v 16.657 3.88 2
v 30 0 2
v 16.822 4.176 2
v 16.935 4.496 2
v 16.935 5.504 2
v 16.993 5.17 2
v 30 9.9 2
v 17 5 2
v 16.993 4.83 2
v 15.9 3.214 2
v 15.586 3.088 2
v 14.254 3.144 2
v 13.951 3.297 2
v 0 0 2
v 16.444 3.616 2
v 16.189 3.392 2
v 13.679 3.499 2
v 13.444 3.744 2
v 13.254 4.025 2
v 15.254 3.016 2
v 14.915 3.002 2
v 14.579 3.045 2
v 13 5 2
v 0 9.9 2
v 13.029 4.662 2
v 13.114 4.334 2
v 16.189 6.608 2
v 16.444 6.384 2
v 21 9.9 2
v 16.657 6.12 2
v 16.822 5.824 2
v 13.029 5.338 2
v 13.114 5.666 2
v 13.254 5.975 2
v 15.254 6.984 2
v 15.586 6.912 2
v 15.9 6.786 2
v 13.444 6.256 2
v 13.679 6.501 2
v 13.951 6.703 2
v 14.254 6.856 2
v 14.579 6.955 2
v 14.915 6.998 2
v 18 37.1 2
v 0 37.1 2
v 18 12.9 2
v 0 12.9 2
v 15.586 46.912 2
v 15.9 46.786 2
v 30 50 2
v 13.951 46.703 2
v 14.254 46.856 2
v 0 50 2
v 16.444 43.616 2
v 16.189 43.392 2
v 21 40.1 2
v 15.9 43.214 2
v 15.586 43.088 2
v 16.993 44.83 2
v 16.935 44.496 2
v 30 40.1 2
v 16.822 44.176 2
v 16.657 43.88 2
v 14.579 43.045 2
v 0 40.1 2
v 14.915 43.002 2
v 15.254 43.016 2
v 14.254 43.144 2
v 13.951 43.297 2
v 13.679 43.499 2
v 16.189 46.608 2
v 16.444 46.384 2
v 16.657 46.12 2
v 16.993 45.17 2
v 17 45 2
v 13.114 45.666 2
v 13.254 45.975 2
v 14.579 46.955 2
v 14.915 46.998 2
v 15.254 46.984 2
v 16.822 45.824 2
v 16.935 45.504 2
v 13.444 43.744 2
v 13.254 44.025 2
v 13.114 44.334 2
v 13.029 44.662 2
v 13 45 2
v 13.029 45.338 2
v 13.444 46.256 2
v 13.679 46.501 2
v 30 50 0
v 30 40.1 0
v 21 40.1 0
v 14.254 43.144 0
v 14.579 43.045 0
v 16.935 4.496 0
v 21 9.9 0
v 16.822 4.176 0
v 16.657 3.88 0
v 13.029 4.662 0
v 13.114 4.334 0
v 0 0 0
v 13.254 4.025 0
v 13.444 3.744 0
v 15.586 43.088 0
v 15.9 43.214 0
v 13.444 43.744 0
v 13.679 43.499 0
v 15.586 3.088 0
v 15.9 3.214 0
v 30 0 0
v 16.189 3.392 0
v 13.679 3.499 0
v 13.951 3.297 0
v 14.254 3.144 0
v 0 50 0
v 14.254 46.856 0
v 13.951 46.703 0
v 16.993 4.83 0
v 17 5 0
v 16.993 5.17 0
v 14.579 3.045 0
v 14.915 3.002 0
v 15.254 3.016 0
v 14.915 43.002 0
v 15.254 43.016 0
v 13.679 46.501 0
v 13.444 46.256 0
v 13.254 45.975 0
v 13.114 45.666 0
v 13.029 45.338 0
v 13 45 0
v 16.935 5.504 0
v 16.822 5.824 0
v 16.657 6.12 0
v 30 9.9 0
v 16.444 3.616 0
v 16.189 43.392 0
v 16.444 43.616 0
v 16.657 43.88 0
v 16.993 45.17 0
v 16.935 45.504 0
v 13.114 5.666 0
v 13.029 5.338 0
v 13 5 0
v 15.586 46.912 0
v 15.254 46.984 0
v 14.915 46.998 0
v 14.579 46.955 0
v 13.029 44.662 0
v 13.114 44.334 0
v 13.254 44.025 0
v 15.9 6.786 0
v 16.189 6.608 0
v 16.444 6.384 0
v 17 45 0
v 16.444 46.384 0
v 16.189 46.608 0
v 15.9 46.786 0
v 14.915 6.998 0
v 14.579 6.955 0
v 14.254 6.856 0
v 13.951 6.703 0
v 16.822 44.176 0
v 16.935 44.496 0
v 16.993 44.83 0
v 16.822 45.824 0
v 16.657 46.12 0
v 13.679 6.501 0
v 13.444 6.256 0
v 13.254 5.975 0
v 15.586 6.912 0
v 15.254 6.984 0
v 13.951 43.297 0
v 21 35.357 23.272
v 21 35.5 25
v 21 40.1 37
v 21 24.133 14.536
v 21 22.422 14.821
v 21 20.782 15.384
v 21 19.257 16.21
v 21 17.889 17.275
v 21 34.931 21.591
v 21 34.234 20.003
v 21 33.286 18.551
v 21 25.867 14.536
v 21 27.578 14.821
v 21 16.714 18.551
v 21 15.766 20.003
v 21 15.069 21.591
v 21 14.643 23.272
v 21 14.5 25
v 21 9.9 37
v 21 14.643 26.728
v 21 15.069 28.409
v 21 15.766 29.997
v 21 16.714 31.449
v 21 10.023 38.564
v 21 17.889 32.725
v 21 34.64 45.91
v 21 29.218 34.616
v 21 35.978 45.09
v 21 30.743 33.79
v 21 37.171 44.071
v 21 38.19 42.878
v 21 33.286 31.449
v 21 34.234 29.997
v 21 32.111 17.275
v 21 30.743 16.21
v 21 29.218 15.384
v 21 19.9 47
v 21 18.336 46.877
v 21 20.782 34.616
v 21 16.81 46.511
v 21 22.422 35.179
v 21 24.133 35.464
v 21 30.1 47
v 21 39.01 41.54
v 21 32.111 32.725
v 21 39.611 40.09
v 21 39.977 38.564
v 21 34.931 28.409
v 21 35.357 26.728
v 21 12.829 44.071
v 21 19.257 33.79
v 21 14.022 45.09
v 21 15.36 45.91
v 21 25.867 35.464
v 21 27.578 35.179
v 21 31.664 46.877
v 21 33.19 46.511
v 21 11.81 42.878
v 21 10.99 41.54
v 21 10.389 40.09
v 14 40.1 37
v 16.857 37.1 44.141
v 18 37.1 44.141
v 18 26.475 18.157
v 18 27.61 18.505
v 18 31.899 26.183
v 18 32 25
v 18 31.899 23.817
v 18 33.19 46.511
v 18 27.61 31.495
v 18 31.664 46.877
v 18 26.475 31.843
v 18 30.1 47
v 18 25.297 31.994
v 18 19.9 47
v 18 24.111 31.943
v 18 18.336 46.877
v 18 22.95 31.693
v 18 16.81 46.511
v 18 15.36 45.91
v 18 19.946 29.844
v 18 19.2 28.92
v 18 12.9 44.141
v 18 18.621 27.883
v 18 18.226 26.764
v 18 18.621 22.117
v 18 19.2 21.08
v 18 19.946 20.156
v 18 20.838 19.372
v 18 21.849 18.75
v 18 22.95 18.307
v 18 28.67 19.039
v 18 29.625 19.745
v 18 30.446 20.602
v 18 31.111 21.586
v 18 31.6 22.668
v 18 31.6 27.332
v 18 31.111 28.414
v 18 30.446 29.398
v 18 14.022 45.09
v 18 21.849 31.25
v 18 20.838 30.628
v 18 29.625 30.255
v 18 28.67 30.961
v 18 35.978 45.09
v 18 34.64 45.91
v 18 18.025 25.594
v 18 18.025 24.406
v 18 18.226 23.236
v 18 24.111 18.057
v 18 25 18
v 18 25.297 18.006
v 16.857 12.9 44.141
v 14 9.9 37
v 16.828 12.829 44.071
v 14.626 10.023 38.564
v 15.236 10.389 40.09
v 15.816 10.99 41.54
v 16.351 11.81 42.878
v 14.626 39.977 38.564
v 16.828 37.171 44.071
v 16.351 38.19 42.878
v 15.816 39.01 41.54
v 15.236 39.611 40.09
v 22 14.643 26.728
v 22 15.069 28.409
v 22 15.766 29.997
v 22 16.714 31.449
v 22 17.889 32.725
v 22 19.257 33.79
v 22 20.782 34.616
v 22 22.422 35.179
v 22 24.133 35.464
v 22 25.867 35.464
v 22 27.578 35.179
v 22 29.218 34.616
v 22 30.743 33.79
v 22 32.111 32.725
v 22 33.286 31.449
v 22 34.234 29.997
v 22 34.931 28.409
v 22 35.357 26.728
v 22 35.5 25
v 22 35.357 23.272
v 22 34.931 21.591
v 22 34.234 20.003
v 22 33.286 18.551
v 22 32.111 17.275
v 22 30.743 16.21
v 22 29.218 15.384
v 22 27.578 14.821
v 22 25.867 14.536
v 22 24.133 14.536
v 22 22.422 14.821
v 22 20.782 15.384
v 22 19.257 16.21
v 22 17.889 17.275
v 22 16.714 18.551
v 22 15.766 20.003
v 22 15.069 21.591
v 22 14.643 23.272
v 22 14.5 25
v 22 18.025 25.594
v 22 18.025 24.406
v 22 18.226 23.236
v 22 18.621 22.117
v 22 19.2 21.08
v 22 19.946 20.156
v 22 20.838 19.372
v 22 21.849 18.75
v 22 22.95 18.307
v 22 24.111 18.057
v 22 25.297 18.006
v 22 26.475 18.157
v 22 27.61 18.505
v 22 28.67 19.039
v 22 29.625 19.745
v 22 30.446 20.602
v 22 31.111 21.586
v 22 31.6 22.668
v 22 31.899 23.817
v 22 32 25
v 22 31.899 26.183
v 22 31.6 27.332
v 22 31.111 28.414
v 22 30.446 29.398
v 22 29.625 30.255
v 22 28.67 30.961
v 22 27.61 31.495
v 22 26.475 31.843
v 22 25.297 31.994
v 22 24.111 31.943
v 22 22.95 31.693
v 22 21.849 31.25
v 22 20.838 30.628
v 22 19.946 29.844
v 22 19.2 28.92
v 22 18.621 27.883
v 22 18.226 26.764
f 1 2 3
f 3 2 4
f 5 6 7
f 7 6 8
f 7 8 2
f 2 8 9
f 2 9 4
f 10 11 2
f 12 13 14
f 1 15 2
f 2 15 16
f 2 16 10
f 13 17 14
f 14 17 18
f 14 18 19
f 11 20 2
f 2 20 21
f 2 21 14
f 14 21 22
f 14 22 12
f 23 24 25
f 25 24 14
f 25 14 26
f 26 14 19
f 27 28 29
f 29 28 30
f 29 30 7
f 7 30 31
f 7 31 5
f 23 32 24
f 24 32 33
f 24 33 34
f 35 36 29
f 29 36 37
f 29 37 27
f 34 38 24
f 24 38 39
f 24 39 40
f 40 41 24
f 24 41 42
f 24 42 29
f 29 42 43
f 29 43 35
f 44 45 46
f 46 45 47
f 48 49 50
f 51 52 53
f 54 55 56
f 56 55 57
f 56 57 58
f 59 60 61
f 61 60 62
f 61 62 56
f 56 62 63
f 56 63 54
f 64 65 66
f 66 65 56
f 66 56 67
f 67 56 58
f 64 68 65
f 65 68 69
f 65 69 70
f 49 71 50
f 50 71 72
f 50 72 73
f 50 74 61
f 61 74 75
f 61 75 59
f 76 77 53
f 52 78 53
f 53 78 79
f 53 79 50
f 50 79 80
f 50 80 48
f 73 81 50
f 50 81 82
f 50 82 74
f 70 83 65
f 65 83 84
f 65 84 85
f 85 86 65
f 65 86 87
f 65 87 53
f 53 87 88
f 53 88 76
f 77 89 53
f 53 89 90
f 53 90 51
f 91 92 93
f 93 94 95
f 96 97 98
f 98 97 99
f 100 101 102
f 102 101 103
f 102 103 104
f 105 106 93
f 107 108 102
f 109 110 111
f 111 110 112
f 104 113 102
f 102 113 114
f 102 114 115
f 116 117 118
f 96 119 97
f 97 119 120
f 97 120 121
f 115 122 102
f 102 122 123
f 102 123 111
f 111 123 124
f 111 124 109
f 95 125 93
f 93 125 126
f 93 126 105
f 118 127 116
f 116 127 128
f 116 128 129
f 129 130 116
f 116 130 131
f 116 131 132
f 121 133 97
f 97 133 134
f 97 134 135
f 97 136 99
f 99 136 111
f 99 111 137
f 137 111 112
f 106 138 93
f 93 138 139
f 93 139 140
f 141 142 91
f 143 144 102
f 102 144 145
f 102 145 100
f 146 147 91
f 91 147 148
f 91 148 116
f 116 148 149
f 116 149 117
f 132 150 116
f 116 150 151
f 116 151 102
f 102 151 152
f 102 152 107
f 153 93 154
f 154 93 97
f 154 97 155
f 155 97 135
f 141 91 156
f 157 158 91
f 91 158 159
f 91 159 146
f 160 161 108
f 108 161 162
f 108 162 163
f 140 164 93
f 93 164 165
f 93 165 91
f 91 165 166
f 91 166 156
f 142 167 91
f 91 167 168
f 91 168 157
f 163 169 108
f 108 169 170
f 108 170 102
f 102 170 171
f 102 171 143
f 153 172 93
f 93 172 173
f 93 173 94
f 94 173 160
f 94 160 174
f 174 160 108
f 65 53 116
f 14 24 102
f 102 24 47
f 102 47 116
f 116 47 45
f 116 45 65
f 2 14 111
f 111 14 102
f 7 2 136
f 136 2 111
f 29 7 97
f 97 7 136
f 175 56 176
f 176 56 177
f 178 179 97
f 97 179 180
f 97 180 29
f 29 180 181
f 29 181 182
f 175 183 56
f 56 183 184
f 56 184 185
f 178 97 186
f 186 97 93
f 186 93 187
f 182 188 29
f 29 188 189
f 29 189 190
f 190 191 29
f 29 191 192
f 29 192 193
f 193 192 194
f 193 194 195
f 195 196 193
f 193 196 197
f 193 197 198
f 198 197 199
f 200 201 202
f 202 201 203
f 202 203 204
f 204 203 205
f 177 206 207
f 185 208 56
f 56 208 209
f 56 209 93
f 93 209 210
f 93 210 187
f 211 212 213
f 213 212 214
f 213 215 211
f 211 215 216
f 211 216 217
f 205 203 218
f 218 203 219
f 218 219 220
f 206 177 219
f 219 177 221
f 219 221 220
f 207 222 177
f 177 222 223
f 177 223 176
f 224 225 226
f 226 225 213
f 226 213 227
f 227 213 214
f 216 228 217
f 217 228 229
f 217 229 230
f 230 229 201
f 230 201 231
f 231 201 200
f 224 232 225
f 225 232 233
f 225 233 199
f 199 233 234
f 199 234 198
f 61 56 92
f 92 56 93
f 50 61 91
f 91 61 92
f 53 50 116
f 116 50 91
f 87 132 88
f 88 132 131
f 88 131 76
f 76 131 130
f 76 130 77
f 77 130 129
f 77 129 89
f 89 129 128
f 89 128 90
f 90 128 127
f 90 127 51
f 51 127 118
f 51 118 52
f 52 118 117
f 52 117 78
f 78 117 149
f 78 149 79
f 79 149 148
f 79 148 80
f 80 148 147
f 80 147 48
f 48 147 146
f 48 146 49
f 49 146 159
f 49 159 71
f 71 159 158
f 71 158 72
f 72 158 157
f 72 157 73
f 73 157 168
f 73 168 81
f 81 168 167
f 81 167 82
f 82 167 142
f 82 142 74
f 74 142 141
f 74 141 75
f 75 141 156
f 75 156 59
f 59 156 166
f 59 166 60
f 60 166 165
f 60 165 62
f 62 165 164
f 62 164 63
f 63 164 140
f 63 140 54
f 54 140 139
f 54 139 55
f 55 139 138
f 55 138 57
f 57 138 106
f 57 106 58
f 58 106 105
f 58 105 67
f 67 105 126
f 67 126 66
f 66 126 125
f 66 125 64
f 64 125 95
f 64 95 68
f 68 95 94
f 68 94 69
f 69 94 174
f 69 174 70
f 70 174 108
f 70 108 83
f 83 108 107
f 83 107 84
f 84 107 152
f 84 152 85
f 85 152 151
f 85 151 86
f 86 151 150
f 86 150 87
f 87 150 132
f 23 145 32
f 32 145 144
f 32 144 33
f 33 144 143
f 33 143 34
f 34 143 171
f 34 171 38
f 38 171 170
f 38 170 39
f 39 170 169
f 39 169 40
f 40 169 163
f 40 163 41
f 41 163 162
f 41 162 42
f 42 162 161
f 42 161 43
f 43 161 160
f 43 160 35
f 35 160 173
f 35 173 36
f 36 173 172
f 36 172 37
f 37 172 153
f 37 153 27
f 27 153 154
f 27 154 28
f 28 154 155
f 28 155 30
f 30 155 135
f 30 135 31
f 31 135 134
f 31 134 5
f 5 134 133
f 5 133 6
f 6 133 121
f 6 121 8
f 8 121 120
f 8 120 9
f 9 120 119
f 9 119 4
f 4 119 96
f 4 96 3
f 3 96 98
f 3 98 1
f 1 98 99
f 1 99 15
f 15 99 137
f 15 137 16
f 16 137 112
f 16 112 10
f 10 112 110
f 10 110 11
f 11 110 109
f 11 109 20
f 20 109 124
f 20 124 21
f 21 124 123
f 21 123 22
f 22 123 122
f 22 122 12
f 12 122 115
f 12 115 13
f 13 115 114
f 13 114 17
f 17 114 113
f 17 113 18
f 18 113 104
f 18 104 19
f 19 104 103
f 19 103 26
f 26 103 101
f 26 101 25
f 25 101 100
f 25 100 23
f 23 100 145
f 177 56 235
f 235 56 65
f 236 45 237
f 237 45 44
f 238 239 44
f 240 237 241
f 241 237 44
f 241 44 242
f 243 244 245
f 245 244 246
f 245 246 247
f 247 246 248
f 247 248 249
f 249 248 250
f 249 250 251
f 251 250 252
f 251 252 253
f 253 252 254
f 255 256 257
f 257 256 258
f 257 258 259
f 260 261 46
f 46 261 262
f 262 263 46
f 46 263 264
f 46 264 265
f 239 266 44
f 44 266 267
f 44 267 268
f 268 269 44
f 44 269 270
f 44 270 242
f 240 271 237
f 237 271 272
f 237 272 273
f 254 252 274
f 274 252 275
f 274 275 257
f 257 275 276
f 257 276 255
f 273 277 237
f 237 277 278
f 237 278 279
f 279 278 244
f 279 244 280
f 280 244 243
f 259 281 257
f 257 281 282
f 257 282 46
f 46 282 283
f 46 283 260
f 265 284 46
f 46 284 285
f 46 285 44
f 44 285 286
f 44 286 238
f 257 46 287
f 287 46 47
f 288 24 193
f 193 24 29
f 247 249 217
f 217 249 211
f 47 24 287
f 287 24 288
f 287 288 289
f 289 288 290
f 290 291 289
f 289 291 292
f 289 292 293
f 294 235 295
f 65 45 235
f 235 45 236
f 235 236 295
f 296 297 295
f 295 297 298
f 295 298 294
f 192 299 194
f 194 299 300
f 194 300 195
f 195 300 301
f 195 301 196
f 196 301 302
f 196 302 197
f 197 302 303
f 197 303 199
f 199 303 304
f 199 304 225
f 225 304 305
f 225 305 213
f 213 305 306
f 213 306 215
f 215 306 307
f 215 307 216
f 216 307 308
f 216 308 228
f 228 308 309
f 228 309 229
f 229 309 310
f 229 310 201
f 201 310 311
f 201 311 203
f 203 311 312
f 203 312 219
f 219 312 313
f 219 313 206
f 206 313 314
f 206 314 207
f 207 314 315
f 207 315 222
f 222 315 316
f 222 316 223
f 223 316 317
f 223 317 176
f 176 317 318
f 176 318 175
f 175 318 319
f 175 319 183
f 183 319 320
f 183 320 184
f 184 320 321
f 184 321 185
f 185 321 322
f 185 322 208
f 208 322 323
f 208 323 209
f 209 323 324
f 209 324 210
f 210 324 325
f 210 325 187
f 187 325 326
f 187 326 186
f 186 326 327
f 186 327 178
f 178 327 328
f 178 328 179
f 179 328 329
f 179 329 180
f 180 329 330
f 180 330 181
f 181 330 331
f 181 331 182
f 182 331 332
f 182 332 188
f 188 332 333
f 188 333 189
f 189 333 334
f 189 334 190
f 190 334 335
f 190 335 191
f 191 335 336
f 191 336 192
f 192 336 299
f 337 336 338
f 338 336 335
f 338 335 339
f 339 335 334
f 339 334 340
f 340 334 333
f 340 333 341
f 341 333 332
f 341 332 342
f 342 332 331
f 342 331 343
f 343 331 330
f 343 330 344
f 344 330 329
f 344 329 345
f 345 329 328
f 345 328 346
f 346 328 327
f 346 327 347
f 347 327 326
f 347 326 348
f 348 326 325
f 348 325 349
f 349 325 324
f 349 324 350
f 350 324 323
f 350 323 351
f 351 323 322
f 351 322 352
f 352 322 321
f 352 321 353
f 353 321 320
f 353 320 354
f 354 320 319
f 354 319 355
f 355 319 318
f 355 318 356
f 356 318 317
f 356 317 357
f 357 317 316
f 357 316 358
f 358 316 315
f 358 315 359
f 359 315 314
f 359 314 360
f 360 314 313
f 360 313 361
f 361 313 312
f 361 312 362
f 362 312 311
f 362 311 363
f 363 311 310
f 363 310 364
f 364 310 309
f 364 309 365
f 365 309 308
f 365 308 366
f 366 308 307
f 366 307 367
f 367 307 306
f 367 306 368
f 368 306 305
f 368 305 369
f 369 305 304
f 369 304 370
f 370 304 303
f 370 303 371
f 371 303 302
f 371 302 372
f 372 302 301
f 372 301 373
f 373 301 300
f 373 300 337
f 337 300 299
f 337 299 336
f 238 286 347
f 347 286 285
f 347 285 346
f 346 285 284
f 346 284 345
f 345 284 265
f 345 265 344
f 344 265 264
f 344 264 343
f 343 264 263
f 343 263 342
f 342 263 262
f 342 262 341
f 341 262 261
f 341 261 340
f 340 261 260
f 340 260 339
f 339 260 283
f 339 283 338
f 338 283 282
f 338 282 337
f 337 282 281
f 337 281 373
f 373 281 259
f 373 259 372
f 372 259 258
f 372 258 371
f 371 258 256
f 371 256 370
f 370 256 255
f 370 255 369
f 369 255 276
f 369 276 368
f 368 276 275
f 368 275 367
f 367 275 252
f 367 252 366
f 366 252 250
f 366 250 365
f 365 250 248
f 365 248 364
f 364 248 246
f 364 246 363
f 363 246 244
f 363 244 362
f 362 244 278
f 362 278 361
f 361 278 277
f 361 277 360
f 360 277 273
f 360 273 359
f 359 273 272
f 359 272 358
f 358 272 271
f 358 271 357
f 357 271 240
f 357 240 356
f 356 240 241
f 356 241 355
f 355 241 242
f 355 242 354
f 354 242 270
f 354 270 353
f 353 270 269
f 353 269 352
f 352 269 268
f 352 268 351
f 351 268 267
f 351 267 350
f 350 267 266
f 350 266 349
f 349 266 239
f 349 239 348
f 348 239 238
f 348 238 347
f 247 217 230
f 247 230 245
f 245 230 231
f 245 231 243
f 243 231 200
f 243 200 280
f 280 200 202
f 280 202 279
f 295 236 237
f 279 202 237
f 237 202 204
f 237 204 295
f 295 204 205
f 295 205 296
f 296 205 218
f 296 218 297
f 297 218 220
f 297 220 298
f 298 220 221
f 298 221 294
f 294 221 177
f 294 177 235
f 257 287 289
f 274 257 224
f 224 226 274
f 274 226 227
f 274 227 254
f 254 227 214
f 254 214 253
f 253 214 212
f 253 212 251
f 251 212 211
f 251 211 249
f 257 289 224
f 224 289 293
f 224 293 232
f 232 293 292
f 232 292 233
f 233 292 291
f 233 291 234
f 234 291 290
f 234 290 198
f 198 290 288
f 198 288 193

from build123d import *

# Parameters (mm, degrees)
ESQUISSE1_R             = 2
BOSS_EXTRU_1_DEPTH      = 2
BOSS_EXTRU_2_DEPTH      = 45
ENL_V_MAT_EXTRU_2_REACH = 70.68
ESQUISSE4_R             = 10.5
BOSS_EXTRU_3_DEPTH      = 1
ENL_V_MAT_EXTRU_3_REACH = 74.062
ESQUISSE5_R             = 7
CONG_1_R                = 10


with BuildPart() as part:
    # Esquisse1 → Boss.-Extru.1 (new body)
    with BuildSketch(Plane.XY):
        Polygon((30, 40.1), (21, 40.1), (21, 9.9), (30, 9.9), (30, 0), (0, 0), (0, 50), (30, 50), align=None)
        with Locations((15, 45)):
            Circle(ESQUISSE1_R, mode=Mode.SUBTRACT)
        with Locations((15, 5)):
            Circle(ESQUISSE1_R, mode=Mode.SUBTRACT)
    extrude(amount=BOSS_EXTRU_1_DEPTH)

    # Esquisse2 → Boss.-Extru.2 (add)
    with BuildSketch(Plane.XY.offset(2)):
        Polygon((18, 40.1), (0, 40.1), (0, 37.1), (18, 37.1), (18, 12.9), (0, 12.9), (0, 9.9), (18, 9.9), (21, 9.9), (21, 40.1), align=None)
    extrude(amount=BOSS_EXTRU_2_DEPTH)

    # Enlèv. mat.-Extru.2: up to this face of the body (flat: up to its plane)
    enl_v_mat_extru_2_end = Plane(part.part.faces().sort_by_distance((10.5, 40.1, 24.5))[0])
    # Esquisse3 → Enlèv. mat.-Extru.2 (cut, up to the picked face)
    with BuildSketch(Plane.XZ.offset(-9.9), mode=Mode.PRIVATE) as enl_v_mat_extru_2_sk1:
        Polygon((0, 2), (18, 47), (0, 47), align=None)
    enl_v_mat_extru_2_tool1 = split(extrude(enl_v_mat_extru_2_sk1.sketch, amount=-ENL_V_MAT_EXTRU_2_REACH, mode=Mode.PRIVATE), bisect_by=enl_v_mat_extru_2_end, keep=Keep.BOTH, mode=Mode.PRIVATE)
    add(enl_v_mat_extru_2_tool1.solids().sort_by(Axis((6, 9.9, 32), (0, 1, 0)))[0], mode=Mode.SUBTRACT)

    # Esquisse4 → Boss.-Extru.3 (add)
    with BuildSketch(Plane(origin=(21, 0, 0), x_dir=(0, 0, -1), z_dir=(1, 0, 0))):
        with Locations(Location((-25, 25, 0), (0, 0, 270))):
            Circle(ESQUISSE4_R)
    extrude(amount=BOSS_EXTRU_3_DEPTH)

    # Esquisse5 → Enlèv. mat.-Extru.3 (cut, up to next)
    with BuildSketch(Plane(origin=(22, 0, 0), x_dir=(0, 0, -1), z_dir=(1, 0, 0)), mode=Mode.PRIVATE) as enl_v_mat_extru_3_sk1:
        with Locations(Location((-25, 25, 0), (0, 0, 90))):
            Circle(ESQUISSE5_R)
    enl_v_mat_extru_3_tool1 = extrude(enl_v_mat_extru_3_sk1.sketch, amount=-ENL_V_MAT_EXTRU_3_REACH, mode=Mode.PRIVATE) & part.part
    add(enl_v_mat_extru_3_tool1.solids().sort_by_distance((22, 25, 25))[0], mode=Mode.SUBTRACT)

    # Congé1
    # the kernel refuses this fillet: 10 mm, written as the material it takes off along each edge
    with BuildSketch(Plane(origin=(-7, 40.1, 47), x_dir=(0, 0, -1), z_dir=(1, 0, 0))) as cong_1_piece_1:
        with BuildLine():
            CenterArc((CONG_1_R, -CONG_1_R), CONG_1_R, 90, 90)
            Line((0, -CONG_1_R), (0, 0))
            Line((0, 0), (CONG_1_R, 0))
        make_face()
    extrude(amount=53, mode=Mode.SUBTRACT)
    with BuildSketch(Plane(origin=(46, 9.9, 47), x_dir=(0, 1, 0), z_dir=(-1, 0, 0))) as cong_1_piece_2:
        with BuildLine():
            CenterArc((CONG_1_R, CONG_1_R), CONG_1_R, 180, 90)
            Line((0, CONG_1_R), (0, 0))
            Line((0, 0), (CONG_1_R, 0))
        make_face()
    extrude(amount=53, mode=Mode.SUBTRACT)


solid = part.part
